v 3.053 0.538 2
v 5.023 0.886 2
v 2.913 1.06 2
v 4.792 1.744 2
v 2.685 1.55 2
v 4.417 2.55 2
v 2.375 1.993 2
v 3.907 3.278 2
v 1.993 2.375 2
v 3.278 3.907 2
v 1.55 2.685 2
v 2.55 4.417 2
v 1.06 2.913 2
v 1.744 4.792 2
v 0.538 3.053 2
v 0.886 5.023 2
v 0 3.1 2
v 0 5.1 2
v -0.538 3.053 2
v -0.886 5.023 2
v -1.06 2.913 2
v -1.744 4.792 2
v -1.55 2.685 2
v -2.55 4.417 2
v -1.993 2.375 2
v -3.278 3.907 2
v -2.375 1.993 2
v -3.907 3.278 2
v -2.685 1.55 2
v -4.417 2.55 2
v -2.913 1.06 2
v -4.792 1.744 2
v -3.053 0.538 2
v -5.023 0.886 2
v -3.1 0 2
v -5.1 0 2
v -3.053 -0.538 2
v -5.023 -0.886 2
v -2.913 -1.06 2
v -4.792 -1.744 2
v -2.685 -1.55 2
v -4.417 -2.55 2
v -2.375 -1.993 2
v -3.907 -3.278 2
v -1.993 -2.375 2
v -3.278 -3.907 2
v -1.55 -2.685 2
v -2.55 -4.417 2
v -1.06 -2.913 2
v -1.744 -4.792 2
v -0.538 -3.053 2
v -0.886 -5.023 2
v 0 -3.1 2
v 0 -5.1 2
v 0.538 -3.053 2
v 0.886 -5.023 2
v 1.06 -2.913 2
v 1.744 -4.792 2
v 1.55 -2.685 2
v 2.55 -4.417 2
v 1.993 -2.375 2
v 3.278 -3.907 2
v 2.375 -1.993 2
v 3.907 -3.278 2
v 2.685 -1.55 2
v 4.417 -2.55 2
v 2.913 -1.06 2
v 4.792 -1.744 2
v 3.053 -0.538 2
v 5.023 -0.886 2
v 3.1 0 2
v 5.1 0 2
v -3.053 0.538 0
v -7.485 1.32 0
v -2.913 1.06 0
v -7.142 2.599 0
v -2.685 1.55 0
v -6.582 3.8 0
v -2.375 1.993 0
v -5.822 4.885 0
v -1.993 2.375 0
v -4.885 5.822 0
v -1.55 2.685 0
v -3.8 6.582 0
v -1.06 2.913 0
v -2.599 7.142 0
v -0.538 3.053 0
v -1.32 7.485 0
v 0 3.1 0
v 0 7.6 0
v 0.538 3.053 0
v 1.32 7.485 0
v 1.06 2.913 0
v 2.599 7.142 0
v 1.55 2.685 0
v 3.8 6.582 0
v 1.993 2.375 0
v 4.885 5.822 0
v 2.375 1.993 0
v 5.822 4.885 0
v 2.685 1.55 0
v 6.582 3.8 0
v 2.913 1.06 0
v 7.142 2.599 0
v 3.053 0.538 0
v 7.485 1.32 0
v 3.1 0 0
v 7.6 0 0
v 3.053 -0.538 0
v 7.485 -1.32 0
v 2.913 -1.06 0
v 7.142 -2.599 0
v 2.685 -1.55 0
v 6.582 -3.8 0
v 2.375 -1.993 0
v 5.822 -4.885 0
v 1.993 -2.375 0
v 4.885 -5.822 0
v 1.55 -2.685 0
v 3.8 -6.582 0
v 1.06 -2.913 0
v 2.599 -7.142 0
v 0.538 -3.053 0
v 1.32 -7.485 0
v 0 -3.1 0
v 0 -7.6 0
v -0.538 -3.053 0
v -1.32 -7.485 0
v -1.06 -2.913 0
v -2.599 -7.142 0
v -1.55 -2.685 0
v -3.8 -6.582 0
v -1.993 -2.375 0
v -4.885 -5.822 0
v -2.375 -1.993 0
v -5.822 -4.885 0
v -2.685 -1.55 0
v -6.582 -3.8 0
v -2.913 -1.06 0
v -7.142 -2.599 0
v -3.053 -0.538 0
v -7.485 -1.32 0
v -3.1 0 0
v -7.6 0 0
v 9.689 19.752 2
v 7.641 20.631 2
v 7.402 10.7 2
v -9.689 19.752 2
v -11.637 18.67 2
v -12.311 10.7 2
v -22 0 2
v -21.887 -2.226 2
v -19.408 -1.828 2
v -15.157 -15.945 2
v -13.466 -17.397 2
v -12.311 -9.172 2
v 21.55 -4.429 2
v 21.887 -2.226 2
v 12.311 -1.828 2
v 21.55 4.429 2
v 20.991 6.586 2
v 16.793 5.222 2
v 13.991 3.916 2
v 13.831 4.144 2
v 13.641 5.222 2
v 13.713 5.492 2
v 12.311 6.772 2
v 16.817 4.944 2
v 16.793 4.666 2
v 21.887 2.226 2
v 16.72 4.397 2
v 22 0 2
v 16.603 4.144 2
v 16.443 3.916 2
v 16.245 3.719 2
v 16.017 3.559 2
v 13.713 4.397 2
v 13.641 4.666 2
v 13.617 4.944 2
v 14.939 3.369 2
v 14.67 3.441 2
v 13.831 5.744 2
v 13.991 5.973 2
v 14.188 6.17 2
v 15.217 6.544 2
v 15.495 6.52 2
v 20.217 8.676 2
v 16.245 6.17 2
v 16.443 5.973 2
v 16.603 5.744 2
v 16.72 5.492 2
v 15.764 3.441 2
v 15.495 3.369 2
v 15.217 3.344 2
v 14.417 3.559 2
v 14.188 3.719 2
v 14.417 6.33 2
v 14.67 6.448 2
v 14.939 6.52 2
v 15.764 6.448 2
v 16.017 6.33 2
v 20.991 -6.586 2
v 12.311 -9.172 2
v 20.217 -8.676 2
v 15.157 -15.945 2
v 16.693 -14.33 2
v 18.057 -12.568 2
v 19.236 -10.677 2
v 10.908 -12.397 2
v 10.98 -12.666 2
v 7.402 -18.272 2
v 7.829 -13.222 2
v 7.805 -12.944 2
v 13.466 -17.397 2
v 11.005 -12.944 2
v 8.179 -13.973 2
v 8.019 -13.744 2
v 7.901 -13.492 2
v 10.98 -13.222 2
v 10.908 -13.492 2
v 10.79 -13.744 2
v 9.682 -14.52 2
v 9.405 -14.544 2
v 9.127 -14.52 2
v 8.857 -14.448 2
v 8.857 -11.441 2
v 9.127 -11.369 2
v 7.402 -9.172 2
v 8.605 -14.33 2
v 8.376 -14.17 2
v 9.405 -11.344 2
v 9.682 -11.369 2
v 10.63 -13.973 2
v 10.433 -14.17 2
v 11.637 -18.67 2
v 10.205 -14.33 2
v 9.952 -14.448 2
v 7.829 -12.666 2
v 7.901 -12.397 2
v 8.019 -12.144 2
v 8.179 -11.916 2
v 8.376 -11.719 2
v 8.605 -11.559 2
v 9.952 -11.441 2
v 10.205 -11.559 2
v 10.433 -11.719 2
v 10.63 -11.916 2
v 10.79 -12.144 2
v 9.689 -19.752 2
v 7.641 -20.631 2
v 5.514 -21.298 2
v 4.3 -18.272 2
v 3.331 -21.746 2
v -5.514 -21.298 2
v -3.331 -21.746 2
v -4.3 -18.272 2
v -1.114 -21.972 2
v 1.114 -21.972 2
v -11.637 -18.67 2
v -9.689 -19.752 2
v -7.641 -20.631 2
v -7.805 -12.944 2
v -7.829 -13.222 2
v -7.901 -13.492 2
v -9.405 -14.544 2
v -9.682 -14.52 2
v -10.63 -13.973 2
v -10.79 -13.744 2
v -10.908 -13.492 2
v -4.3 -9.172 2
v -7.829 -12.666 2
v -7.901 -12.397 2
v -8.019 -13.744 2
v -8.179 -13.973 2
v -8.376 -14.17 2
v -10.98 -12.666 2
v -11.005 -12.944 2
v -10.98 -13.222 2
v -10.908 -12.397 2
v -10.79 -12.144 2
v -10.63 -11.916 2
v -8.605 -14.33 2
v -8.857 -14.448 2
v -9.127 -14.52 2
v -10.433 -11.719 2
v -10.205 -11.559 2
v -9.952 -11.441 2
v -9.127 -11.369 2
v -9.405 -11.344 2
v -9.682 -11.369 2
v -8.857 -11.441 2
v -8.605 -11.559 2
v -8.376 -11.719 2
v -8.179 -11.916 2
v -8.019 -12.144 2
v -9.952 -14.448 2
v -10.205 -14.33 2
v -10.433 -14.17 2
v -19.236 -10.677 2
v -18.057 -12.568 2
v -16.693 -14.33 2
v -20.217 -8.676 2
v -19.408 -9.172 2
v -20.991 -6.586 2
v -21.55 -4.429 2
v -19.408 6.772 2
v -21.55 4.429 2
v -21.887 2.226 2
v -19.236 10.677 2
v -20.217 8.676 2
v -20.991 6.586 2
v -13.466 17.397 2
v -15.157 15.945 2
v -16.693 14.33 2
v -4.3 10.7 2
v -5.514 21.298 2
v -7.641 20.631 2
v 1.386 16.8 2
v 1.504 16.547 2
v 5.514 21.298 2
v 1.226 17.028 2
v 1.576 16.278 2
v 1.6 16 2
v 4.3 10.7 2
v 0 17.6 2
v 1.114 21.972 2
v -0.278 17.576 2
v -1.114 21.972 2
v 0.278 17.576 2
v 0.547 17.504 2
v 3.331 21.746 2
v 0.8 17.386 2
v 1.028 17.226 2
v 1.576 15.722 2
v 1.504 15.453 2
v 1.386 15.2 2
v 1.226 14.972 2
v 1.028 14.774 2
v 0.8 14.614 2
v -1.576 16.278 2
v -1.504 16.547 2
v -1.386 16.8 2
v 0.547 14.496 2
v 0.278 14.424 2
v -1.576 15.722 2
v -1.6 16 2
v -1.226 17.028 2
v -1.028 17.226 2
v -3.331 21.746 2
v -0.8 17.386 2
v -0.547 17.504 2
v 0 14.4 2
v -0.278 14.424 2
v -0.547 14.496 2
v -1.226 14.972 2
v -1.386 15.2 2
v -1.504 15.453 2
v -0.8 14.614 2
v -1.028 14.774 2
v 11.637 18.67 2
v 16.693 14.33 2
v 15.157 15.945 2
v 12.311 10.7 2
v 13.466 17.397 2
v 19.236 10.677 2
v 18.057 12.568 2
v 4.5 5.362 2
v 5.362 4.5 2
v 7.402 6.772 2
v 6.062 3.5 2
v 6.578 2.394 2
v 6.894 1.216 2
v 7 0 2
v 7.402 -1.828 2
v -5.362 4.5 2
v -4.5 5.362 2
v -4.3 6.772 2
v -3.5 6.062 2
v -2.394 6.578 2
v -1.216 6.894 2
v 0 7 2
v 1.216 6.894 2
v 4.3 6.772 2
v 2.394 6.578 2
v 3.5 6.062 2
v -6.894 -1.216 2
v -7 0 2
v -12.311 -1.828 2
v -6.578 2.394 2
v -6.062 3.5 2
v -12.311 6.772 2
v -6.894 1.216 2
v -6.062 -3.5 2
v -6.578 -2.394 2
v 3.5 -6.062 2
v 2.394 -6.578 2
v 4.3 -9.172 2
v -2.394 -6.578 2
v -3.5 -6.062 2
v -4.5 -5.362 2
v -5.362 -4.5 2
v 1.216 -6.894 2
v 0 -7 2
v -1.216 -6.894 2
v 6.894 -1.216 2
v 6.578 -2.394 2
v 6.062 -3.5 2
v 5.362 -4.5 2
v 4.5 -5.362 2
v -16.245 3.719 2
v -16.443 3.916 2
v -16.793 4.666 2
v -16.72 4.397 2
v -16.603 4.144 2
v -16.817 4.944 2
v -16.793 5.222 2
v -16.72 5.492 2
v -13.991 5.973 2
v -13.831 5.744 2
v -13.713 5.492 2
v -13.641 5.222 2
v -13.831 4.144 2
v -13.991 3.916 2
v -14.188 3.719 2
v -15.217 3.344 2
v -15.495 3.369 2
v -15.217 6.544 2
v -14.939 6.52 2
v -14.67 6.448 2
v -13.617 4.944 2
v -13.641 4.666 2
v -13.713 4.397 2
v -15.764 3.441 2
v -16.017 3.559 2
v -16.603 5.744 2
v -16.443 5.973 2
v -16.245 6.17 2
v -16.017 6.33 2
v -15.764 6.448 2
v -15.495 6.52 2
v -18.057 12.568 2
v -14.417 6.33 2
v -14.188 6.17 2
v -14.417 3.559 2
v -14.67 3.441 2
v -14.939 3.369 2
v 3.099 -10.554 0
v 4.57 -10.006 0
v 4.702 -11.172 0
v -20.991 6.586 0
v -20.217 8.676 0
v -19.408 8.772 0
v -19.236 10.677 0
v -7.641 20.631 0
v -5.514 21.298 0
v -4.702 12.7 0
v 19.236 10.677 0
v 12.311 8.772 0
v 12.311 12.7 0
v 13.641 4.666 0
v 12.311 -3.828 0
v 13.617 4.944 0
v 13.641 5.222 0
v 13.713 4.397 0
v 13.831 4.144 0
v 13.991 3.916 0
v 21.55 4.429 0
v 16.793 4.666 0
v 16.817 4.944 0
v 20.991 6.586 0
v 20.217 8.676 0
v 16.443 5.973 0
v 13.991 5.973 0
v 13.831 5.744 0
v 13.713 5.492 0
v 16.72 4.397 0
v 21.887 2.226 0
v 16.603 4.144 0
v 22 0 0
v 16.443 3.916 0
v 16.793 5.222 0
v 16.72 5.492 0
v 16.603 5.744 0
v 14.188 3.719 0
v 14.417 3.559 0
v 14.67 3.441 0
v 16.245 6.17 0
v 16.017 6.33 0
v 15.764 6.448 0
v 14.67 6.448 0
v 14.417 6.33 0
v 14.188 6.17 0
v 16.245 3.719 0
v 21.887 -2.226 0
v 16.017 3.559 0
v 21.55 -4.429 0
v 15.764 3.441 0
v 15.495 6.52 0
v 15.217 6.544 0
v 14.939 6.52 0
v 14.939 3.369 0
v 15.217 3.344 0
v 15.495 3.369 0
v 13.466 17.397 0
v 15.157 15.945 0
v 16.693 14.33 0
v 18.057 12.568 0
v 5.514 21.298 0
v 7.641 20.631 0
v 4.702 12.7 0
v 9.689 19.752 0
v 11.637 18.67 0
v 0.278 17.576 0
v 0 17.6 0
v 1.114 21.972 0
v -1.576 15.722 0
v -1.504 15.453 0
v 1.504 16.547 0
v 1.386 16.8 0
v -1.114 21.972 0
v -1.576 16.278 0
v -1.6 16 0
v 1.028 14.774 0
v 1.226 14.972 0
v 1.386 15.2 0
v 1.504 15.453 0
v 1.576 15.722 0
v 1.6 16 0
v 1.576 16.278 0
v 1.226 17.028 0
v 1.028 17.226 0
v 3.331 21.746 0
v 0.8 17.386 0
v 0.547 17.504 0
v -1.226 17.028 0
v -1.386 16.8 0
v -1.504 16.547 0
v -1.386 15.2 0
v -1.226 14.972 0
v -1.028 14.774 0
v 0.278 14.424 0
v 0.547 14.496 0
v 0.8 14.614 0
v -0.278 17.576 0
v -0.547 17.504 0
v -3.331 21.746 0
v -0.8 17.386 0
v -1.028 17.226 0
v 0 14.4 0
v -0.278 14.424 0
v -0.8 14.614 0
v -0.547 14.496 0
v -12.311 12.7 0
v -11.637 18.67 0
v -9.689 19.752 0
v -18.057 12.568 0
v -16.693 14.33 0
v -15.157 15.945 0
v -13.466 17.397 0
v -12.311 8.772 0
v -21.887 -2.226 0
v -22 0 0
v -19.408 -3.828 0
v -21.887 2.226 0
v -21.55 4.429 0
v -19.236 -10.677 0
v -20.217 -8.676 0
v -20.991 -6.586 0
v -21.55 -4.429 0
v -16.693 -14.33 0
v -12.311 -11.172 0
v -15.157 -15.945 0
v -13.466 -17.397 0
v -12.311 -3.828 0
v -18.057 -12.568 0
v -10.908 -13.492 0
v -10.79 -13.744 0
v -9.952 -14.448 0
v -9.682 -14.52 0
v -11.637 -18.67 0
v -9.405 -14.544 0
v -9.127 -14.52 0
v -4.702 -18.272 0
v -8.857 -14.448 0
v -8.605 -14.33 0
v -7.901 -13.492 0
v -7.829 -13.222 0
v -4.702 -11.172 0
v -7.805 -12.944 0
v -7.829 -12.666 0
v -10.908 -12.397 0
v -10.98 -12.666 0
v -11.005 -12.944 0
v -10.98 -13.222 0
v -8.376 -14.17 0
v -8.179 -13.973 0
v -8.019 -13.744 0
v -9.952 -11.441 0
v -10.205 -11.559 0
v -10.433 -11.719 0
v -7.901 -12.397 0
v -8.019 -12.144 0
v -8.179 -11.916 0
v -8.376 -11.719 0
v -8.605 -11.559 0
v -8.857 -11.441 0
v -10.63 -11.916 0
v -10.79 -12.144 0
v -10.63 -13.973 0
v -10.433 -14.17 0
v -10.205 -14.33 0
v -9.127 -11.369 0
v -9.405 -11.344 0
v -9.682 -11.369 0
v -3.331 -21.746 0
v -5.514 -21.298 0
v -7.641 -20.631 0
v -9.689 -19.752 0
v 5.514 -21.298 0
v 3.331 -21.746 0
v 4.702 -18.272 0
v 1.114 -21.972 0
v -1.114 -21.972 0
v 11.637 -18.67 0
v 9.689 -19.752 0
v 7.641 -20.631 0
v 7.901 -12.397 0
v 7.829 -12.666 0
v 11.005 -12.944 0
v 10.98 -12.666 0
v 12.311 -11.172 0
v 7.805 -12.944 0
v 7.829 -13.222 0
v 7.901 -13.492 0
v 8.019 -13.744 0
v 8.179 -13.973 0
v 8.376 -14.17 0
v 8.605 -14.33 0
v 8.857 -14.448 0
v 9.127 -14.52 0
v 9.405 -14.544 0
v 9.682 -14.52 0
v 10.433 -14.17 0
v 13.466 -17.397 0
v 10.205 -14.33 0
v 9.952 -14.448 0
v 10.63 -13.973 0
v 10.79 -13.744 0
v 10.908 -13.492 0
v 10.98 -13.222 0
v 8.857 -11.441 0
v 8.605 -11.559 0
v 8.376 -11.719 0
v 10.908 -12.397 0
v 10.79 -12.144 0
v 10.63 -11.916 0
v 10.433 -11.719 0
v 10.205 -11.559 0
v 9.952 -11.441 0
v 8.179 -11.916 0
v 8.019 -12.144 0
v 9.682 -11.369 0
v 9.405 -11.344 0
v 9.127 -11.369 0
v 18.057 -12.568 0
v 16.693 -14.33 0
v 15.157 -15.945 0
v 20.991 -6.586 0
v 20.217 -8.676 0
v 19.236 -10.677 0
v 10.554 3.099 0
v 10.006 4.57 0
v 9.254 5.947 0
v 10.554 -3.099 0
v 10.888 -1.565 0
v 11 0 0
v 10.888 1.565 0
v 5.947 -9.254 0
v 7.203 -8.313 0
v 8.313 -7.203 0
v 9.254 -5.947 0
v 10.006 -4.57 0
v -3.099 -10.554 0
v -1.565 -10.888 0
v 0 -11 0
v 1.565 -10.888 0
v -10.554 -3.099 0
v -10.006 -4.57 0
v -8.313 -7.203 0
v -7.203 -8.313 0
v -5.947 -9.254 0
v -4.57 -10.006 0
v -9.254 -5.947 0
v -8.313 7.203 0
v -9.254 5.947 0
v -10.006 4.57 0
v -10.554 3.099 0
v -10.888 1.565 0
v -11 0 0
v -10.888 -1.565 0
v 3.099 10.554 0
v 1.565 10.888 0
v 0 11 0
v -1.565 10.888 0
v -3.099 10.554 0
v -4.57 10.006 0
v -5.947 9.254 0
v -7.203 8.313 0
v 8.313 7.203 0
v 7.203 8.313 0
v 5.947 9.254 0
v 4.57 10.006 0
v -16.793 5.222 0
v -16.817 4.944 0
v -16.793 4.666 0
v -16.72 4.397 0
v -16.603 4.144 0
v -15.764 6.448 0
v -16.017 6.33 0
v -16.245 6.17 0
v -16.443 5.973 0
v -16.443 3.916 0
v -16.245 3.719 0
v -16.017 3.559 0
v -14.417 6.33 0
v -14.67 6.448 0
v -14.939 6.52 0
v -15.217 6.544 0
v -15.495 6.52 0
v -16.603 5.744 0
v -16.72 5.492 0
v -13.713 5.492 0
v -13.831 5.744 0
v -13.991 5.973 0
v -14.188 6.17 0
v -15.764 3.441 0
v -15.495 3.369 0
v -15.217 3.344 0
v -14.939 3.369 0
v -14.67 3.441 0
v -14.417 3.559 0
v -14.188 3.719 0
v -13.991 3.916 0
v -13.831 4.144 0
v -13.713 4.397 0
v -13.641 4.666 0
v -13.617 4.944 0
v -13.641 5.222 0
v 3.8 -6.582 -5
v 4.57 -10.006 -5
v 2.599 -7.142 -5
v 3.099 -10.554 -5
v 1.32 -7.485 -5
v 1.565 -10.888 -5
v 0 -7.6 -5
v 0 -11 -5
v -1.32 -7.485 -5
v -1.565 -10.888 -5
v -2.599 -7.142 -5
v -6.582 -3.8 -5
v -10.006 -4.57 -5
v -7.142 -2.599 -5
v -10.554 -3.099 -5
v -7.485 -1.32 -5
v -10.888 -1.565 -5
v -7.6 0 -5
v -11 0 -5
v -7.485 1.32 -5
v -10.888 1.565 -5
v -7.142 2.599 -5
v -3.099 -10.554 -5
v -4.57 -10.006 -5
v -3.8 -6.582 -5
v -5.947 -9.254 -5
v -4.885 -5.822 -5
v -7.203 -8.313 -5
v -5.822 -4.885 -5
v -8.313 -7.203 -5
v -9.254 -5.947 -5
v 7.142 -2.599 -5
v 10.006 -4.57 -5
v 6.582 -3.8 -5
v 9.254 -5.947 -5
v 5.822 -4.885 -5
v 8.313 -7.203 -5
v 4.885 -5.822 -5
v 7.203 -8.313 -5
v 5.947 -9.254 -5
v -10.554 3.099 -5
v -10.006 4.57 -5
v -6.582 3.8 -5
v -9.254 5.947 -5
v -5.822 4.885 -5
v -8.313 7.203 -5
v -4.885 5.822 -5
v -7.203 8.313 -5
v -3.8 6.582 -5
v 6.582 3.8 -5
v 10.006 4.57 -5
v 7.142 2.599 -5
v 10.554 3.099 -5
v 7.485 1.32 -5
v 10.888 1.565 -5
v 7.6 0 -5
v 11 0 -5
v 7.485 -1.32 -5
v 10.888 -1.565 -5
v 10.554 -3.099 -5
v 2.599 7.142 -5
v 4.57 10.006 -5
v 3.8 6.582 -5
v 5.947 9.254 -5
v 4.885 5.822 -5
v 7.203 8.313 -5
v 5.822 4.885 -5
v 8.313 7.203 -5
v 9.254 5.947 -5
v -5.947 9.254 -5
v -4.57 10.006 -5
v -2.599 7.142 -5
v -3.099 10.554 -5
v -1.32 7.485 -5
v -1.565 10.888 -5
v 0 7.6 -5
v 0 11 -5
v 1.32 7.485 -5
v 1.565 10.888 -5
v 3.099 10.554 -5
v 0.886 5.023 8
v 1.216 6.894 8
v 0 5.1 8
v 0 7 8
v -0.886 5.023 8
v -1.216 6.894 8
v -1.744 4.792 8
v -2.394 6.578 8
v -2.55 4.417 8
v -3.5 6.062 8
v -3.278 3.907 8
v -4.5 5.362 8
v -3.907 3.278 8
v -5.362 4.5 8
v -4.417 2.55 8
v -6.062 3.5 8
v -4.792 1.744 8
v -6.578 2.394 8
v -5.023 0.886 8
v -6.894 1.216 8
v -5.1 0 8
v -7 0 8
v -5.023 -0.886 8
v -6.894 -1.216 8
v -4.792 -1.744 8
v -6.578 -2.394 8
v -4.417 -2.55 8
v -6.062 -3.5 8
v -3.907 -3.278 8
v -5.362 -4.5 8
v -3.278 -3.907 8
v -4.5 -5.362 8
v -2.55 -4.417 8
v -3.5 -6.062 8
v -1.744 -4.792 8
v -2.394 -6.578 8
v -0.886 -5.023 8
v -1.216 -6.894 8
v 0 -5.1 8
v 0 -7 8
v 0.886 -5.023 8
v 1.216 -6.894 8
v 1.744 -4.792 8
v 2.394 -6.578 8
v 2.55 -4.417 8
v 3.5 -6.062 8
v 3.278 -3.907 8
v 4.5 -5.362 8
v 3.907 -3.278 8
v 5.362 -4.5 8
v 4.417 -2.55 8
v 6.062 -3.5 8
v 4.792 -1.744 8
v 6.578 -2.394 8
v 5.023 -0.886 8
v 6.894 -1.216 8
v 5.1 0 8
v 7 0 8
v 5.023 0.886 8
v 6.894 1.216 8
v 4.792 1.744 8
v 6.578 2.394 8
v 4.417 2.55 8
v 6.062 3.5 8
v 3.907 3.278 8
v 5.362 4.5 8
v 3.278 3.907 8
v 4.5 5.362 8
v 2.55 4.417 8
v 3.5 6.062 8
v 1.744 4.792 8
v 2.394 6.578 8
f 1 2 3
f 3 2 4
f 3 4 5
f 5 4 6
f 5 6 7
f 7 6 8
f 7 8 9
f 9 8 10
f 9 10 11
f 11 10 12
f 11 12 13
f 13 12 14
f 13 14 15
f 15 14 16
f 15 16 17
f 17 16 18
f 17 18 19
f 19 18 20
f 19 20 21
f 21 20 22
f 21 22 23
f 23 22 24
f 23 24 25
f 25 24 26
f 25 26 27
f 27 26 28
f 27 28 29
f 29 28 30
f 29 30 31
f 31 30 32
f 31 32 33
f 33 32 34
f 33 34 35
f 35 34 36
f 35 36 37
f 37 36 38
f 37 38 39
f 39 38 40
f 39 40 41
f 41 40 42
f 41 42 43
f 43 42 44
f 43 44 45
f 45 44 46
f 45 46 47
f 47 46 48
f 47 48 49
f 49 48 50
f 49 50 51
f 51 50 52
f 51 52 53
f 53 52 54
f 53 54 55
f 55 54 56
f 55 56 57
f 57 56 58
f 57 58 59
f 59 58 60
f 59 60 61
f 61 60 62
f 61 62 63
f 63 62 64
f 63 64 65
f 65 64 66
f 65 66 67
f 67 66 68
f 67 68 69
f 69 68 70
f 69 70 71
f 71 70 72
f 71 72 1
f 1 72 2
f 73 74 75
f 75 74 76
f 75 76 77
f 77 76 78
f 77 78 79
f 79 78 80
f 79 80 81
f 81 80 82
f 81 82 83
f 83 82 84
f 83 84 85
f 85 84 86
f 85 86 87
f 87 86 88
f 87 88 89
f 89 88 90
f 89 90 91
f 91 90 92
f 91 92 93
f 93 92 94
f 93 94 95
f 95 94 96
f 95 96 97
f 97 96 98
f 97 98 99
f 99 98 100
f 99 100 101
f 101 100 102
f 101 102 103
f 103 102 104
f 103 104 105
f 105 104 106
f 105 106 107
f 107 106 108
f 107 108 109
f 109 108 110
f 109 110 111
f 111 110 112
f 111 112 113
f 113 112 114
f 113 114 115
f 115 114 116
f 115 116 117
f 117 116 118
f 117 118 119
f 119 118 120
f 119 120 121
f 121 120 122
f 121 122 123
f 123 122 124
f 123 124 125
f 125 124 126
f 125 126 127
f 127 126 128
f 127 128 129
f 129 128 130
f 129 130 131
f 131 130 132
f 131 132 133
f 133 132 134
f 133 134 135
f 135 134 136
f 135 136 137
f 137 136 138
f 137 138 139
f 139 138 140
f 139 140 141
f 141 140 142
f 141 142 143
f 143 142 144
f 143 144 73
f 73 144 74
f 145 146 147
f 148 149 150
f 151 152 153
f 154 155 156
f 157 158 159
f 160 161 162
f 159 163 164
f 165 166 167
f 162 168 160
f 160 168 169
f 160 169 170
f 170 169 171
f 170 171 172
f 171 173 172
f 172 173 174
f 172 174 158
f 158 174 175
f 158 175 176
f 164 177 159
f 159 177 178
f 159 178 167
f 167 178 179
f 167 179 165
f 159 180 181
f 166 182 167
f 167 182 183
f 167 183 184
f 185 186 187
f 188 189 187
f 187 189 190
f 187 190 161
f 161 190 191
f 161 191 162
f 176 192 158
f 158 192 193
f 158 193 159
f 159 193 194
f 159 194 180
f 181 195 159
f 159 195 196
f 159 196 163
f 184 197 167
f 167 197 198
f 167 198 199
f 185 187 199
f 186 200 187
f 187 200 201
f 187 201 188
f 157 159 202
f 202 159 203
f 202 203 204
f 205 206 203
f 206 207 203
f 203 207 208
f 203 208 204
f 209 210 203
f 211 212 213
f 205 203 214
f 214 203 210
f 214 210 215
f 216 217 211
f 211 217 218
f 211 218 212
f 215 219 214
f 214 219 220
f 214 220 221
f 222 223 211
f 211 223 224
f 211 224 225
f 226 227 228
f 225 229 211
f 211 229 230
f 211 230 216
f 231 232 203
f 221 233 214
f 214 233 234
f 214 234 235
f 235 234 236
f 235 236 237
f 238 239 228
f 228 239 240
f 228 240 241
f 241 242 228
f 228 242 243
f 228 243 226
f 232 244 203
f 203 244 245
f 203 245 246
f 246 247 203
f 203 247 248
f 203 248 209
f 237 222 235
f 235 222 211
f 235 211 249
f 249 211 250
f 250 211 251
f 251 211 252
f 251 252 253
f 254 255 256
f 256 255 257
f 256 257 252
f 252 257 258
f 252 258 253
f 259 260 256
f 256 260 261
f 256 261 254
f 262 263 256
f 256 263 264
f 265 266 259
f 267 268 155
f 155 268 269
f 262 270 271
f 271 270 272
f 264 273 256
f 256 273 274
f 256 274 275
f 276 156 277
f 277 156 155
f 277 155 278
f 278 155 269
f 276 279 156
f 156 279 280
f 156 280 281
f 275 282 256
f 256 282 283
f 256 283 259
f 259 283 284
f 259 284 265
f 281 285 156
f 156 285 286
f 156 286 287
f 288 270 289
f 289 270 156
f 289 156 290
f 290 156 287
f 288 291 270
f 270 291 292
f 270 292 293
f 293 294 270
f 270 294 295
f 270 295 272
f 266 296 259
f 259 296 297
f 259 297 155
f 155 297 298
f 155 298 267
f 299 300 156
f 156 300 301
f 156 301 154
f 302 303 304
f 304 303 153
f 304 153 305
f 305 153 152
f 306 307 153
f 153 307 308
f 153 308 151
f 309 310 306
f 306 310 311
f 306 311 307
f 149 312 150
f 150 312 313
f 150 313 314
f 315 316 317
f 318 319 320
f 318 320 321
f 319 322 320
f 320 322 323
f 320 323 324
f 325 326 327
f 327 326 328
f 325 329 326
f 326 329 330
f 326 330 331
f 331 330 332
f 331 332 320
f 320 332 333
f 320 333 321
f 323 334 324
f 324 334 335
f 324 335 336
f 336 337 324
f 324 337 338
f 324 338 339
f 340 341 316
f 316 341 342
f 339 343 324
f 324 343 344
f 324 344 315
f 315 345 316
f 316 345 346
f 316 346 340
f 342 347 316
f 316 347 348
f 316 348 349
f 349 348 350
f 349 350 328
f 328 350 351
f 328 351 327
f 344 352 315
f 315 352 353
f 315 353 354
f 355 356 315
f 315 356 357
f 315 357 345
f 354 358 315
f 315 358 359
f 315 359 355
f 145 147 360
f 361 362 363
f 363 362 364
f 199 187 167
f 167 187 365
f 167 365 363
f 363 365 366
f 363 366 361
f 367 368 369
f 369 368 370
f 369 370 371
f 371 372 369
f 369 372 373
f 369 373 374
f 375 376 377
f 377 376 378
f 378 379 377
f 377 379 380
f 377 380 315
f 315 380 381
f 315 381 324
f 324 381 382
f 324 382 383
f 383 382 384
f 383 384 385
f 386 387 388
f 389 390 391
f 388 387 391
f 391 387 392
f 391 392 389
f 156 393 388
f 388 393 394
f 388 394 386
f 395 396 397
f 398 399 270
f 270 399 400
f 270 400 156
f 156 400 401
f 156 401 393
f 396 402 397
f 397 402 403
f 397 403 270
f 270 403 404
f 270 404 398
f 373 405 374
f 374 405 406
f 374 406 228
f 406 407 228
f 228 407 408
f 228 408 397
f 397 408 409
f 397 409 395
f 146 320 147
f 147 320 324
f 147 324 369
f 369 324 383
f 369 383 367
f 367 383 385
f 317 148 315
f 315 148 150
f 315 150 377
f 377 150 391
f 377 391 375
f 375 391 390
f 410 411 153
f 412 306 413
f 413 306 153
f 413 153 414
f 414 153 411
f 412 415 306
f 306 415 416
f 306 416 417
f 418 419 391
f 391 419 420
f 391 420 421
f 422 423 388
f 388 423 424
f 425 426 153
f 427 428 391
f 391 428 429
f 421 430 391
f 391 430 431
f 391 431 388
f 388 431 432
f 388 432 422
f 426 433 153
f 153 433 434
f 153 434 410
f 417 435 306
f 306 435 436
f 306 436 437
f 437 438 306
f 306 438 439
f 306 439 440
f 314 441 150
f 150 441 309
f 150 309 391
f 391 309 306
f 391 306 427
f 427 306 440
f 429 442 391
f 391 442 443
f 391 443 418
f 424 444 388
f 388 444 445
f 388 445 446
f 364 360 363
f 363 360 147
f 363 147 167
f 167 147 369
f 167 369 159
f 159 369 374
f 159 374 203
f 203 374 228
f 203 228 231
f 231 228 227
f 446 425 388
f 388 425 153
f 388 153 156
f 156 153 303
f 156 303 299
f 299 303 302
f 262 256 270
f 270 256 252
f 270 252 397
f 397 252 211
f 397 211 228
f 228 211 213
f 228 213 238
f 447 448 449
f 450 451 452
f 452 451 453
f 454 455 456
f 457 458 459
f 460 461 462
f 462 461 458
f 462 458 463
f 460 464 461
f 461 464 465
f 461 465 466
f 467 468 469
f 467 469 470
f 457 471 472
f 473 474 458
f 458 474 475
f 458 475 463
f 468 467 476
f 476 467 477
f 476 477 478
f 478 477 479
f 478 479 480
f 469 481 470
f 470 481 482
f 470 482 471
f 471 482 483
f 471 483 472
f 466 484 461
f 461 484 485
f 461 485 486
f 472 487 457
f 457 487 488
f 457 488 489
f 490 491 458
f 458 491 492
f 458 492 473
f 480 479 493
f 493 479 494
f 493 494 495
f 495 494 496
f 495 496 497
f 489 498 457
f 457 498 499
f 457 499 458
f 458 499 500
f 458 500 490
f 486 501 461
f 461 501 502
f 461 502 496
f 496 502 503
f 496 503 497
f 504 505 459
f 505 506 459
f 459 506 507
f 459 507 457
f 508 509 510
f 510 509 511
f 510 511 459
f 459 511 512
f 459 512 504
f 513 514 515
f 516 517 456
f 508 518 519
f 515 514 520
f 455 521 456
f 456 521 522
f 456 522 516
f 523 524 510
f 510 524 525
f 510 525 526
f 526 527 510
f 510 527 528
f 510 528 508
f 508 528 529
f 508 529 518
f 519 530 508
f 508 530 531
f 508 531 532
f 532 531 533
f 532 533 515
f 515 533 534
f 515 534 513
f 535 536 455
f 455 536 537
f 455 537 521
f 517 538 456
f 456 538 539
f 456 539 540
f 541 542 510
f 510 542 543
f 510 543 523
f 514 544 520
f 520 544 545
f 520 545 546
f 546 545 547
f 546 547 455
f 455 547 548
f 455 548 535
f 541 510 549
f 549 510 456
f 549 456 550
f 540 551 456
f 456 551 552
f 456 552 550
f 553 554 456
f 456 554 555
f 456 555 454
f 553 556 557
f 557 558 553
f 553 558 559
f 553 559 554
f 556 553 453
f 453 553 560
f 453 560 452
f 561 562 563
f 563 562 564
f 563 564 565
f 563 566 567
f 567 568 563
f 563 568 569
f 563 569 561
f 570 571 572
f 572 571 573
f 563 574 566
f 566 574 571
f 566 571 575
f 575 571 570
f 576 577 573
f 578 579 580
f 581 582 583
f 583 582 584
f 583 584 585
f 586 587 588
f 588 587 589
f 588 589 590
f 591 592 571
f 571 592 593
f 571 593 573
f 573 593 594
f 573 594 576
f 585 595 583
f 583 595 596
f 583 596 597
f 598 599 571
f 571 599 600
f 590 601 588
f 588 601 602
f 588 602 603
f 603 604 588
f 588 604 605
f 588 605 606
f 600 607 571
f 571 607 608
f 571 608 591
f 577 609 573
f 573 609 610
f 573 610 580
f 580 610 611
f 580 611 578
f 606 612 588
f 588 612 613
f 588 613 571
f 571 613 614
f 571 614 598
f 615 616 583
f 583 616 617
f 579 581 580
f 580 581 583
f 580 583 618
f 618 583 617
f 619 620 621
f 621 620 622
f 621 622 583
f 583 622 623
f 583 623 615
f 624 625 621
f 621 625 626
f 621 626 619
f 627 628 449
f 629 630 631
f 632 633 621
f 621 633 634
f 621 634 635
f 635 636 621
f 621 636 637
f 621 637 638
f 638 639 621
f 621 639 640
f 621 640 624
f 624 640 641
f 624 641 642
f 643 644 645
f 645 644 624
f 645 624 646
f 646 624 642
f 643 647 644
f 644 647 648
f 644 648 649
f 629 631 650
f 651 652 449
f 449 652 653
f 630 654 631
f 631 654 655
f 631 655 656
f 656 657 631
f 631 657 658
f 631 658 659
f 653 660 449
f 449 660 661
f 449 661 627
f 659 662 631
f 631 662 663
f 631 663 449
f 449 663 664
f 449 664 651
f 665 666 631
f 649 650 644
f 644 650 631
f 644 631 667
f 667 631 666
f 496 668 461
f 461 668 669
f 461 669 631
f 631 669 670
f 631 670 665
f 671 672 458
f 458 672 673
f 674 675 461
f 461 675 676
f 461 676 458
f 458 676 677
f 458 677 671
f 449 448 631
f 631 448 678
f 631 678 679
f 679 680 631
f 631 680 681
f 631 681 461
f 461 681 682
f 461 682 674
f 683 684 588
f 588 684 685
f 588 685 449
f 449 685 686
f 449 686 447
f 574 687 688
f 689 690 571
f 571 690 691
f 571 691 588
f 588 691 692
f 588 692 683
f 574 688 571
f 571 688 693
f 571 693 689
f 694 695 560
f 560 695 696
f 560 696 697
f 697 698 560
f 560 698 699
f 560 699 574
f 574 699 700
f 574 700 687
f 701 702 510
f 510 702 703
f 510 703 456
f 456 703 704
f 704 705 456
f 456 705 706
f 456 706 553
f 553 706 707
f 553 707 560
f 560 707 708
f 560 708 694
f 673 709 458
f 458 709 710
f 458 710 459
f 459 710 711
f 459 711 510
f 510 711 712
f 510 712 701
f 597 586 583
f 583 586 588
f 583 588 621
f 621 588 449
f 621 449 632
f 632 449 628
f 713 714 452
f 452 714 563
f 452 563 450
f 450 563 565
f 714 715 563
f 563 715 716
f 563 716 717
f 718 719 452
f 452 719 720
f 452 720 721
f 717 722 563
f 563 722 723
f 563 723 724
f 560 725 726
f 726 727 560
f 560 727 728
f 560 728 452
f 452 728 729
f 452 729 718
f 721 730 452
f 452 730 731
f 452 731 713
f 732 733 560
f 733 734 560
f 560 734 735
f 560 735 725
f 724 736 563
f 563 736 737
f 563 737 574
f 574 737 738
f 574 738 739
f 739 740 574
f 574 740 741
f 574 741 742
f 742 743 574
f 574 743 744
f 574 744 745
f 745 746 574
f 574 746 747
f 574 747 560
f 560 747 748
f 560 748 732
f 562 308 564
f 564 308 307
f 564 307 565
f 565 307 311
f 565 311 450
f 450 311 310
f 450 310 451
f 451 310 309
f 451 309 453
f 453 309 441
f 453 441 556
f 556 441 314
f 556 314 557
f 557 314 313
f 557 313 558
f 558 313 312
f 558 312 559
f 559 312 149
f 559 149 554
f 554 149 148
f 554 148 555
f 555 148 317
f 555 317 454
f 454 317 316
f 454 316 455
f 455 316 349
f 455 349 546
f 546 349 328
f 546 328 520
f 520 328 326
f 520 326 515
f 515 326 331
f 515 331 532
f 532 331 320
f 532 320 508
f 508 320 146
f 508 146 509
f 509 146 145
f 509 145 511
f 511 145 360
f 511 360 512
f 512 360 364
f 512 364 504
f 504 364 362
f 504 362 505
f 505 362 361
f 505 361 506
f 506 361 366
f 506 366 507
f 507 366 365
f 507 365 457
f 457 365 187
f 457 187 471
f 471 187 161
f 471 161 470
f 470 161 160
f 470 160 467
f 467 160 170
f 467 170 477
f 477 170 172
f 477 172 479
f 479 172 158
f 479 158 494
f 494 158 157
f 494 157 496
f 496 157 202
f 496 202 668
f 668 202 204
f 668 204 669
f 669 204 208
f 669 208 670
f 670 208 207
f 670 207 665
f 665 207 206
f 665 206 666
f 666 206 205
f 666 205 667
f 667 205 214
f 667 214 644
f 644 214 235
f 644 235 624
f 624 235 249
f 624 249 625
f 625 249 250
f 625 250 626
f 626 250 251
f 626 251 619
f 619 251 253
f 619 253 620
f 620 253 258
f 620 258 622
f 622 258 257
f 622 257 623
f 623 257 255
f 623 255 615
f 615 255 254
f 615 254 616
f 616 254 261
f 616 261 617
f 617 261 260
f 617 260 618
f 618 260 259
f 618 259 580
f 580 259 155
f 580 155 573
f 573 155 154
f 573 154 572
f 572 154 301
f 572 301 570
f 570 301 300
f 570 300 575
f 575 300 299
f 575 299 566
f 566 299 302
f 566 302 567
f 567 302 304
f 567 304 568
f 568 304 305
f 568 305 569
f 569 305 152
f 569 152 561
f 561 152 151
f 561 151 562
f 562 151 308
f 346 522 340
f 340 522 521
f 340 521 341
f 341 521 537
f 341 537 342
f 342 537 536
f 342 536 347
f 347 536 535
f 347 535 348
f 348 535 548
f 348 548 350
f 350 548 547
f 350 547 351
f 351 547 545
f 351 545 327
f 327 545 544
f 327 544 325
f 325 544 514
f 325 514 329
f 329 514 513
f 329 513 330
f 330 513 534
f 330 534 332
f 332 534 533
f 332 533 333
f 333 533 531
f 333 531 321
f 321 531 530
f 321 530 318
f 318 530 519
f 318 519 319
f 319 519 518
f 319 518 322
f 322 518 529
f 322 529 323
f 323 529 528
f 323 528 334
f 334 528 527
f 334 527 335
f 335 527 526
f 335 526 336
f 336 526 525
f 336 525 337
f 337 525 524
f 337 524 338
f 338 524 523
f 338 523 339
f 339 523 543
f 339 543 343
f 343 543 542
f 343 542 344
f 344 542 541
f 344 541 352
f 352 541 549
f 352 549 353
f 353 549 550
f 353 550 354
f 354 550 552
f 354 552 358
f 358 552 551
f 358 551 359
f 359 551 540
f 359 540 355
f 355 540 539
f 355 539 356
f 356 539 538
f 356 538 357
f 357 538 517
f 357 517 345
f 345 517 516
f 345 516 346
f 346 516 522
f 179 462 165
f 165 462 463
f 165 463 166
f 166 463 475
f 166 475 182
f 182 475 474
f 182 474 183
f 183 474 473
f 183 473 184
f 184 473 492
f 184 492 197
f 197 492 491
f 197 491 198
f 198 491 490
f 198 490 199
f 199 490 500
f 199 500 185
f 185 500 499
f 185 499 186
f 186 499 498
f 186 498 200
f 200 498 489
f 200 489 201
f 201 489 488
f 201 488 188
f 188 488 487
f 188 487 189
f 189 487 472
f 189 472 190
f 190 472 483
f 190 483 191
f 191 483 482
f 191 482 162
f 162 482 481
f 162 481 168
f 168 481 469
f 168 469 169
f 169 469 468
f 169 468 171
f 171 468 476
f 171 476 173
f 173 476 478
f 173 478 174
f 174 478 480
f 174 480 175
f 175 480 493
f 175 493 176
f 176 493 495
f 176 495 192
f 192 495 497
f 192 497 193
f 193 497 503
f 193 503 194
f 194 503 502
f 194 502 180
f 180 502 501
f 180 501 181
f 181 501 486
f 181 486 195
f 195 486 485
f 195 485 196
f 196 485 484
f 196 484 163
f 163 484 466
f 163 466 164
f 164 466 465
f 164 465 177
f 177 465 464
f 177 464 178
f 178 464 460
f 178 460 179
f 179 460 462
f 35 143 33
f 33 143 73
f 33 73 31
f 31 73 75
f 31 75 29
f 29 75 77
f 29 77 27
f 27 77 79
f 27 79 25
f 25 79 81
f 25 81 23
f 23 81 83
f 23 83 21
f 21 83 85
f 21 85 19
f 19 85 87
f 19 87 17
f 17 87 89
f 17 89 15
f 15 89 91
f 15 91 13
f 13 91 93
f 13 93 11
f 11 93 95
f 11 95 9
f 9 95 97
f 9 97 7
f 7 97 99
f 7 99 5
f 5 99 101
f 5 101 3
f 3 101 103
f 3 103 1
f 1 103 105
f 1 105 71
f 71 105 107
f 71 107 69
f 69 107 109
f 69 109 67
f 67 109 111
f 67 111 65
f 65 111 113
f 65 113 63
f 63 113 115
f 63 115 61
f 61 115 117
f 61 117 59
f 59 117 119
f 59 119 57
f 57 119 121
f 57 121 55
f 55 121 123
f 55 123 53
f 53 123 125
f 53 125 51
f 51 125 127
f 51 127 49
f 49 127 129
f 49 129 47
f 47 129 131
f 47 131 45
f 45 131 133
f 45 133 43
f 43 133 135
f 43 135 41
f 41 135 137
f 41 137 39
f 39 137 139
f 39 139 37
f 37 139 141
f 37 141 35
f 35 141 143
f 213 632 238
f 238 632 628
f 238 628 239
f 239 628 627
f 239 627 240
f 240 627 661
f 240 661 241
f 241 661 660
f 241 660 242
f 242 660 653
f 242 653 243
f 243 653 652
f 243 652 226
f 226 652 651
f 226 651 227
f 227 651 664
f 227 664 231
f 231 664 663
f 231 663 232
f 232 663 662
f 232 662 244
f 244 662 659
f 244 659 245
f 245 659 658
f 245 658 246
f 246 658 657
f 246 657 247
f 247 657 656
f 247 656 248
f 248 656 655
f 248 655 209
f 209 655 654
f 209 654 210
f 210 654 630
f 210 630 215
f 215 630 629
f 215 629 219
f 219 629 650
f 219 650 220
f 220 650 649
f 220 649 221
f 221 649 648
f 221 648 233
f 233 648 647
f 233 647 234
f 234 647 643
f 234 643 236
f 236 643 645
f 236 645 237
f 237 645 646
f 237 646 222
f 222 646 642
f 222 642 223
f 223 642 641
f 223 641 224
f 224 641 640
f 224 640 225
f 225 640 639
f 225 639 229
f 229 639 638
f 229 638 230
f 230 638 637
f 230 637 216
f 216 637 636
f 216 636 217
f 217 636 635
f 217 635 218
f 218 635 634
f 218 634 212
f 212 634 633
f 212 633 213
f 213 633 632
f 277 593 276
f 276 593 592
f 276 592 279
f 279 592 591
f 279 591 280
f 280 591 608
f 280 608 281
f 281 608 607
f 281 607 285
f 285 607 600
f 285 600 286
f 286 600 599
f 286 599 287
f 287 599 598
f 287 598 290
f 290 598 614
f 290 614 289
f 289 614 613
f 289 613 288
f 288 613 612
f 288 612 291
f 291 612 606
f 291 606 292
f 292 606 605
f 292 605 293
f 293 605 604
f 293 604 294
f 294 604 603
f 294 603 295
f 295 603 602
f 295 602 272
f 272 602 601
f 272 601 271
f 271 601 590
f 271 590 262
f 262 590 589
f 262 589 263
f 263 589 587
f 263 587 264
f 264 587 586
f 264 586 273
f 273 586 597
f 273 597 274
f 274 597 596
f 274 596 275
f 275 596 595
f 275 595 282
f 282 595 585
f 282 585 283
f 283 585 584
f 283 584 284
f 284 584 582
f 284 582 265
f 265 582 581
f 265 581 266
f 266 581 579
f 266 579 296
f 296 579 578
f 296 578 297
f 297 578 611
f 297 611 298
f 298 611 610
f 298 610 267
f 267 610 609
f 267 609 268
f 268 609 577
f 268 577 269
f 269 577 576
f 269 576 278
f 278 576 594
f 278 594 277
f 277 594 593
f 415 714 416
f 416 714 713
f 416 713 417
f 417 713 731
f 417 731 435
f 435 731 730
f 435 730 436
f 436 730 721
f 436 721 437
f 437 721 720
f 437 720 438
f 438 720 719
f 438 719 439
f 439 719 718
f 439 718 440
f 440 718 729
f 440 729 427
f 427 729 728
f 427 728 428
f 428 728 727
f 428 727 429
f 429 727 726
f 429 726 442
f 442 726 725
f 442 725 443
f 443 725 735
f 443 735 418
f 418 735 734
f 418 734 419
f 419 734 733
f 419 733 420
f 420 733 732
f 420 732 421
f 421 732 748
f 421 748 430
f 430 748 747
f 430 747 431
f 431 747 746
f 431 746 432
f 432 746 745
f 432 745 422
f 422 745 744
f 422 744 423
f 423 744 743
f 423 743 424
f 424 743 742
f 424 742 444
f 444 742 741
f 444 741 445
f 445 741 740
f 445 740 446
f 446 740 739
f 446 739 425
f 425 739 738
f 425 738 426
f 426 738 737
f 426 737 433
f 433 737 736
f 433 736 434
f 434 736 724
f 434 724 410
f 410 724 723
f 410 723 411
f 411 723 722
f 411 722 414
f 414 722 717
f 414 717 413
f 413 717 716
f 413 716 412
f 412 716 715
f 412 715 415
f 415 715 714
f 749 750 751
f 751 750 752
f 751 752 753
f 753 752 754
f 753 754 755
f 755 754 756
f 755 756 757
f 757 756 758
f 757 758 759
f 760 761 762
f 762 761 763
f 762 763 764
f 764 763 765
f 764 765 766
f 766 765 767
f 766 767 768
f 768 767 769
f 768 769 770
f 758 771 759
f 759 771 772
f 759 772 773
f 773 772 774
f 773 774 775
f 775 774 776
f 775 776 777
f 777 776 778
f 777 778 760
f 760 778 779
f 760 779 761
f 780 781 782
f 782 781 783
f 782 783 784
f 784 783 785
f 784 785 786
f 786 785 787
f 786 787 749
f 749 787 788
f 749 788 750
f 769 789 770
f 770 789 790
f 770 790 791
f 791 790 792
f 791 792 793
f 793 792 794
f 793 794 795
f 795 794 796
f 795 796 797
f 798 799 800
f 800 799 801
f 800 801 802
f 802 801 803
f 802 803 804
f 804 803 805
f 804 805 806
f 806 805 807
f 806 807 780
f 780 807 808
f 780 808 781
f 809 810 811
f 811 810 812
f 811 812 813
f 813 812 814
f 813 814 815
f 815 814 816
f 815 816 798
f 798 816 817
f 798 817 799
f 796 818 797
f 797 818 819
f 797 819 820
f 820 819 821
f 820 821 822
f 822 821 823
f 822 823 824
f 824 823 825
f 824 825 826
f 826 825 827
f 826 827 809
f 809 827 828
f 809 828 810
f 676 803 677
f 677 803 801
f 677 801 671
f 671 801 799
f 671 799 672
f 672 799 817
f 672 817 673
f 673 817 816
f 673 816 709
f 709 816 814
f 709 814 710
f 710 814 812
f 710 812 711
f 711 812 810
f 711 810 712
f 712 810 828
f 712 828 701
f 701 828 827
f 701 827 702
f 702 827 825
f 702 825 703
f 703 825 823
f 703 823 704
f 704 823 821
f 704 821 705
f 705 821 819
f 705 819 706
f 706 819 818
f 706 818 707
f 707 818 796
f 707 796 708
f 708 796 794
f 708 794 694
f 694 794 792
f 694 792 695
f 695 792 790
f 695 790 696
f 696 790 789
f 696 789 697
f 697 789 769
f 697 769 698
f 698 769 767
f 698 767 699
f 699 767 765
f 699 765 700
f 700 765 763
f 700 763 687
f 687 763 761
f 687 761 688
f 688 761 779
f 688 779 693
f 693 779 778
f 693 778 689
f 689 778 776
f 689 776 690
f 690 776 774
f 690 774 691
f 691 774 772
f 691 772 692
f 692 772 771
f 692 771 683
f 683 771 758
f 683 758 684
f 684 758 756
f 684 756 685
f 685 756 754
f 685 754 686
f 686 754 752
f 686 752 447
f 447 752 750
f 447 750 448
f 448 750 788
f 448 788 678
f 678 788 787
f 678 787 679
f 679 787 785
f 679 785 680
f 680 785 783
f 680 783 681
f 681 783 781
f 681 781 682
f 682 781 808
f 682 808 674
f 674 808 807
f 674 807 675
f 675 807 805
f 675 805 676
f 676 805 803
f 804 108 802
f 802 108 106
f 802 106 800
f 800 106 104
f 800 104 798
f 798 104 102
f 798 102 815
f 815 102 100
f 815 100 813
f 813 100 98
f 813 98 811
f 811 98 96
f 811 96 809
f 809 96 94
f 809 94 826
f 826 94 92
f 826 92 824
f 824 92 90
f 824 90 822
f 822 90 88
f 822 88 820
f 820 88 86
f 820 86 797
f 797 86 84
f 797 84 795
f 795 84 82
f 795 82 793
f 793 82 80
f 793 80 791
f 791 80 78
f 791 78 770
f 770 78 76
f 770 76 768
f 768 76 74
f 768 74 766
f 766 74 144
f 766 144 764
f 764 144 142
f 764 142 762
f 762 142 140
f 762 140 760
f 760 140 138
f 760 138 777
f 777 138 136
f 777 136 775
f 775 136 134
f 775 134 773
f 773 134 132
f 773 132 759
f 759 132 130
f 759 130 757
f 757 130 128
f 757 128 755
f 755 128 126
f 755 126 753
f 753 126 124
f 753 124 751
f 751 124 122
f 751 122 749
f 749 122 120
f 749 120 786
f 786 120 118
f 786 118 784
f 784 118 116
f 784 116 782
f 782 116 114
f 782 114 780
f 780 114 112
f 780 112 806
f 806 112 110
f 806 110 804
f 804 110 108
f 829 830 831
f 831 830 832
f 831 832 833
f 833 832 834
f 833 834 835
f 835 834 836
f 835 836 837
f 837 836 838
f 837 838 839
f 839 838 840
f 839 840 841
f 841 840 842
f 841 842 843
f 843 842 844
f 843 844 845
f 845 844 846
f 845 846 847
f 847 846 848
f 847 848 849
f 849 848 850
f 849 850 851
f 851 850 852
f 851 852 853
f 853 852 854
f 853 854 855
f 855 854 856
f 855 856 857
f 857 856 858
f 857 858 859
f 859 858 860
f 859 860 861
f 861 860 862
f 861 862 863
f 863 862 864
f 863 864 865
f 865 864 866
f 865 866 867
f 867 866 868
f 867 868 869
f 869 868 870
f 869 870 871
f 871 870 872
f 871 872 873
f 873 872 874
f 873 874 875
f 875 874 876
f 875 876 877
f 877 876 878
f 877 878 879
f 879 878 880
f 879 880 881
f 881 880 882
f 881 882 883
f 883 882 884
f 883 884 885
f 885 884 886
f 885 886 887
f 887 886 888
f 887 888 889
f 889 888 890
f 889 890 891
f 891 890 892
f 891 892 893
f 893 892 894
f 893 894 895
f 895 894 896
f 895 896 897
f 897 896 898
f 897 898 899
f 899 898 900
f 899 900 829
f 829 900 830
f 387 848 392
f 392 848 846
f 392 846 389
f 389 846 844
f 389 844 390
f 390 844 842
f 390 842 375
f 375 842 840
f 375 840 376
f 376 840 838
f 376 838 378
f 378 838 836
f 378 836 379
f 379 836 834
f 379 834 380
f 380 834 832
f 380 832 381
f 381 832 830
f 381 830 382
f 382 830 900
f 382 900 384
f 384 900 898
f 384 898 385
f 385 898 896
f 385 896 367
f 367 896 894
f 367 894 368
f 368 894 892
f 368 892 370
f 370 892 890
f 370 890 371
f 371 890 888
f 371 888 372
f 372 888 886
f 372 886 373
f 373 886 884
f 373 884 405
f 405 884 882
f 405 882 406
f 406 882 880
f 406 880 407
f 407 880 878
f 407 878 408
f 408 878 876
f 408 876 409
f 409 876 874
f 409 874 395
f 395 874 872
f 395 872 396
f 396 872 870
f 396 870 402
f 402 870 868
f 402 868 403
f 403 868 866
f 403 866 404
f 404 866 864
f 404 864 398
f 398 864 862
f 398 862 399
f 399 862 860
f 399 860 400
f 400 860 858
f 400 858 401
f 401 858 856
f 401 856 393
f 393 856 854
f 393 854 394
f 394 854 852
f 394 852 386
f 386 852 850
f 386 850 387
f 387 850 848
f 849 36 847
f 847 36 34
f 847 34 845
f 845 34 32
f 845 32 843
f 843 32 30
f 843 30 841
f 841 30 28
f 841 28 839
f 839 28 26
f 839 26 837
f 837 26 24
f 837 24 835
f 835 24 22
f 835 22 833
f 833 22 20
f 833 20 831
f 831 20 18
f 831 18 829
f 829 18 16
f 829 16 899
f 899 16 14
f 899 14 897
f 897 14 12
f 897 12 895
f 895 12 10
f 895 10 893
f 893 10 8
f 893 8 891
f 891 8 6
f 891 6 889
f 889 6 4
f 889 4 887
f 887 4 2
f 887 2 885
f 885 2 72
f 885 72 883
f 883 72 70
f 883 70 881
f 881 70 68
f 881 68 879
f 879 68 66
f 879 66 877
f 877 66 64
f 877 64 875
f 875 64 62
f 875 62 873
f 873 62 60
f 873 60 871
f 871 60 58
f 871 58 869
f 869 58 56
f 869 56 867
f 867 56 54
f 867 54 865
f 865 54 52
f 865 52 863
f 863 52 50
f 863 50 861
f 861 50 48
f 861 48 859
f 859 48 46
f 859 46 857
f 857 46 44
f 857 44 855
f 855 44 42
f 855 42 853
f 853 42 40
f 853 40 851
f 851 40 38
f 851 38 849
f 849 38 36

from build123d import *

# Parameters (mm, degrees)
SKETCH_1_R      = 22
SKETCH_1_R_2    = 3.1
SKETCH_1_R_3    = 1.6
EXTRUDE_1_DEPTH = 2
SKETCH_3_R      = 11
SKETCH_3_R_2    = 7.6
EXTRUDE_2_DEPTH = 5
SKETCH_2_R      = 7
SKETCH_2_R_2    = 5.1
EXTRUDE_3_DEPTH = 6


with BuildPart() as part:
    # 草图1 → 凸台-拉伸1 (new body)
    with BuildSketch(Plane.XY):
        Circle(SKETCH_1_R)
        Circle(SKETCH_1_R_2, mode=Mode.SUBTRACT)
        with Locations((0, 16)):
            Circle(SKETCH_1_R_3, mode=Mode.SUBTRACT)
        with Locations((15.216904261, 4.94427191)):
            Circle(SKETCH_1_R_3, mode=Mode.SUBTRACT)
        with Locations((9.404564037, -12.94427191)):
            Circle(SKETCH_1_R_3, mode=Mode.SUBTRACT)
        with Locations((-9.404564037, -12.94427191)):
            Circle(SKETCH_1_R_3, mode=Mode.SUBTRACT)
        with Locations((-15.216904261, 4.94427191)):
            Circle(SKETCH_1_R_3, mode=Mode.SUBTRACT)
    extrude(amount=EXTRUDE_1_DEPTH)

    # 草图3 → 凸台-拉伸2 (add)
    with BuildSketch(Plane(origin=(0, 0, 0), x_dir=(-1, 0, 0), z_dir=(0, 0, -1))):
        with Locations(Location((0, 0, 0), (0, 0, 180))):
            Circle(SKETCH_3_R)
        Circle(SKETCH_3_R_2, mode=Mode.SUBTRACT)
    extrude(amount=EXTRUDE_2_DEPTH)

    # 草图2 → 凸台-拉伸3 (add)
    with BuildSketch(Plane.XY.offset(2)):
        Circle(SKETCH_2_R)
        Circle(SKETCH_2_R_2, mode=Mode.SUBTRACT)
    extrude(amount=EXTRUDE_3_DEPTH)


solid = part.part
